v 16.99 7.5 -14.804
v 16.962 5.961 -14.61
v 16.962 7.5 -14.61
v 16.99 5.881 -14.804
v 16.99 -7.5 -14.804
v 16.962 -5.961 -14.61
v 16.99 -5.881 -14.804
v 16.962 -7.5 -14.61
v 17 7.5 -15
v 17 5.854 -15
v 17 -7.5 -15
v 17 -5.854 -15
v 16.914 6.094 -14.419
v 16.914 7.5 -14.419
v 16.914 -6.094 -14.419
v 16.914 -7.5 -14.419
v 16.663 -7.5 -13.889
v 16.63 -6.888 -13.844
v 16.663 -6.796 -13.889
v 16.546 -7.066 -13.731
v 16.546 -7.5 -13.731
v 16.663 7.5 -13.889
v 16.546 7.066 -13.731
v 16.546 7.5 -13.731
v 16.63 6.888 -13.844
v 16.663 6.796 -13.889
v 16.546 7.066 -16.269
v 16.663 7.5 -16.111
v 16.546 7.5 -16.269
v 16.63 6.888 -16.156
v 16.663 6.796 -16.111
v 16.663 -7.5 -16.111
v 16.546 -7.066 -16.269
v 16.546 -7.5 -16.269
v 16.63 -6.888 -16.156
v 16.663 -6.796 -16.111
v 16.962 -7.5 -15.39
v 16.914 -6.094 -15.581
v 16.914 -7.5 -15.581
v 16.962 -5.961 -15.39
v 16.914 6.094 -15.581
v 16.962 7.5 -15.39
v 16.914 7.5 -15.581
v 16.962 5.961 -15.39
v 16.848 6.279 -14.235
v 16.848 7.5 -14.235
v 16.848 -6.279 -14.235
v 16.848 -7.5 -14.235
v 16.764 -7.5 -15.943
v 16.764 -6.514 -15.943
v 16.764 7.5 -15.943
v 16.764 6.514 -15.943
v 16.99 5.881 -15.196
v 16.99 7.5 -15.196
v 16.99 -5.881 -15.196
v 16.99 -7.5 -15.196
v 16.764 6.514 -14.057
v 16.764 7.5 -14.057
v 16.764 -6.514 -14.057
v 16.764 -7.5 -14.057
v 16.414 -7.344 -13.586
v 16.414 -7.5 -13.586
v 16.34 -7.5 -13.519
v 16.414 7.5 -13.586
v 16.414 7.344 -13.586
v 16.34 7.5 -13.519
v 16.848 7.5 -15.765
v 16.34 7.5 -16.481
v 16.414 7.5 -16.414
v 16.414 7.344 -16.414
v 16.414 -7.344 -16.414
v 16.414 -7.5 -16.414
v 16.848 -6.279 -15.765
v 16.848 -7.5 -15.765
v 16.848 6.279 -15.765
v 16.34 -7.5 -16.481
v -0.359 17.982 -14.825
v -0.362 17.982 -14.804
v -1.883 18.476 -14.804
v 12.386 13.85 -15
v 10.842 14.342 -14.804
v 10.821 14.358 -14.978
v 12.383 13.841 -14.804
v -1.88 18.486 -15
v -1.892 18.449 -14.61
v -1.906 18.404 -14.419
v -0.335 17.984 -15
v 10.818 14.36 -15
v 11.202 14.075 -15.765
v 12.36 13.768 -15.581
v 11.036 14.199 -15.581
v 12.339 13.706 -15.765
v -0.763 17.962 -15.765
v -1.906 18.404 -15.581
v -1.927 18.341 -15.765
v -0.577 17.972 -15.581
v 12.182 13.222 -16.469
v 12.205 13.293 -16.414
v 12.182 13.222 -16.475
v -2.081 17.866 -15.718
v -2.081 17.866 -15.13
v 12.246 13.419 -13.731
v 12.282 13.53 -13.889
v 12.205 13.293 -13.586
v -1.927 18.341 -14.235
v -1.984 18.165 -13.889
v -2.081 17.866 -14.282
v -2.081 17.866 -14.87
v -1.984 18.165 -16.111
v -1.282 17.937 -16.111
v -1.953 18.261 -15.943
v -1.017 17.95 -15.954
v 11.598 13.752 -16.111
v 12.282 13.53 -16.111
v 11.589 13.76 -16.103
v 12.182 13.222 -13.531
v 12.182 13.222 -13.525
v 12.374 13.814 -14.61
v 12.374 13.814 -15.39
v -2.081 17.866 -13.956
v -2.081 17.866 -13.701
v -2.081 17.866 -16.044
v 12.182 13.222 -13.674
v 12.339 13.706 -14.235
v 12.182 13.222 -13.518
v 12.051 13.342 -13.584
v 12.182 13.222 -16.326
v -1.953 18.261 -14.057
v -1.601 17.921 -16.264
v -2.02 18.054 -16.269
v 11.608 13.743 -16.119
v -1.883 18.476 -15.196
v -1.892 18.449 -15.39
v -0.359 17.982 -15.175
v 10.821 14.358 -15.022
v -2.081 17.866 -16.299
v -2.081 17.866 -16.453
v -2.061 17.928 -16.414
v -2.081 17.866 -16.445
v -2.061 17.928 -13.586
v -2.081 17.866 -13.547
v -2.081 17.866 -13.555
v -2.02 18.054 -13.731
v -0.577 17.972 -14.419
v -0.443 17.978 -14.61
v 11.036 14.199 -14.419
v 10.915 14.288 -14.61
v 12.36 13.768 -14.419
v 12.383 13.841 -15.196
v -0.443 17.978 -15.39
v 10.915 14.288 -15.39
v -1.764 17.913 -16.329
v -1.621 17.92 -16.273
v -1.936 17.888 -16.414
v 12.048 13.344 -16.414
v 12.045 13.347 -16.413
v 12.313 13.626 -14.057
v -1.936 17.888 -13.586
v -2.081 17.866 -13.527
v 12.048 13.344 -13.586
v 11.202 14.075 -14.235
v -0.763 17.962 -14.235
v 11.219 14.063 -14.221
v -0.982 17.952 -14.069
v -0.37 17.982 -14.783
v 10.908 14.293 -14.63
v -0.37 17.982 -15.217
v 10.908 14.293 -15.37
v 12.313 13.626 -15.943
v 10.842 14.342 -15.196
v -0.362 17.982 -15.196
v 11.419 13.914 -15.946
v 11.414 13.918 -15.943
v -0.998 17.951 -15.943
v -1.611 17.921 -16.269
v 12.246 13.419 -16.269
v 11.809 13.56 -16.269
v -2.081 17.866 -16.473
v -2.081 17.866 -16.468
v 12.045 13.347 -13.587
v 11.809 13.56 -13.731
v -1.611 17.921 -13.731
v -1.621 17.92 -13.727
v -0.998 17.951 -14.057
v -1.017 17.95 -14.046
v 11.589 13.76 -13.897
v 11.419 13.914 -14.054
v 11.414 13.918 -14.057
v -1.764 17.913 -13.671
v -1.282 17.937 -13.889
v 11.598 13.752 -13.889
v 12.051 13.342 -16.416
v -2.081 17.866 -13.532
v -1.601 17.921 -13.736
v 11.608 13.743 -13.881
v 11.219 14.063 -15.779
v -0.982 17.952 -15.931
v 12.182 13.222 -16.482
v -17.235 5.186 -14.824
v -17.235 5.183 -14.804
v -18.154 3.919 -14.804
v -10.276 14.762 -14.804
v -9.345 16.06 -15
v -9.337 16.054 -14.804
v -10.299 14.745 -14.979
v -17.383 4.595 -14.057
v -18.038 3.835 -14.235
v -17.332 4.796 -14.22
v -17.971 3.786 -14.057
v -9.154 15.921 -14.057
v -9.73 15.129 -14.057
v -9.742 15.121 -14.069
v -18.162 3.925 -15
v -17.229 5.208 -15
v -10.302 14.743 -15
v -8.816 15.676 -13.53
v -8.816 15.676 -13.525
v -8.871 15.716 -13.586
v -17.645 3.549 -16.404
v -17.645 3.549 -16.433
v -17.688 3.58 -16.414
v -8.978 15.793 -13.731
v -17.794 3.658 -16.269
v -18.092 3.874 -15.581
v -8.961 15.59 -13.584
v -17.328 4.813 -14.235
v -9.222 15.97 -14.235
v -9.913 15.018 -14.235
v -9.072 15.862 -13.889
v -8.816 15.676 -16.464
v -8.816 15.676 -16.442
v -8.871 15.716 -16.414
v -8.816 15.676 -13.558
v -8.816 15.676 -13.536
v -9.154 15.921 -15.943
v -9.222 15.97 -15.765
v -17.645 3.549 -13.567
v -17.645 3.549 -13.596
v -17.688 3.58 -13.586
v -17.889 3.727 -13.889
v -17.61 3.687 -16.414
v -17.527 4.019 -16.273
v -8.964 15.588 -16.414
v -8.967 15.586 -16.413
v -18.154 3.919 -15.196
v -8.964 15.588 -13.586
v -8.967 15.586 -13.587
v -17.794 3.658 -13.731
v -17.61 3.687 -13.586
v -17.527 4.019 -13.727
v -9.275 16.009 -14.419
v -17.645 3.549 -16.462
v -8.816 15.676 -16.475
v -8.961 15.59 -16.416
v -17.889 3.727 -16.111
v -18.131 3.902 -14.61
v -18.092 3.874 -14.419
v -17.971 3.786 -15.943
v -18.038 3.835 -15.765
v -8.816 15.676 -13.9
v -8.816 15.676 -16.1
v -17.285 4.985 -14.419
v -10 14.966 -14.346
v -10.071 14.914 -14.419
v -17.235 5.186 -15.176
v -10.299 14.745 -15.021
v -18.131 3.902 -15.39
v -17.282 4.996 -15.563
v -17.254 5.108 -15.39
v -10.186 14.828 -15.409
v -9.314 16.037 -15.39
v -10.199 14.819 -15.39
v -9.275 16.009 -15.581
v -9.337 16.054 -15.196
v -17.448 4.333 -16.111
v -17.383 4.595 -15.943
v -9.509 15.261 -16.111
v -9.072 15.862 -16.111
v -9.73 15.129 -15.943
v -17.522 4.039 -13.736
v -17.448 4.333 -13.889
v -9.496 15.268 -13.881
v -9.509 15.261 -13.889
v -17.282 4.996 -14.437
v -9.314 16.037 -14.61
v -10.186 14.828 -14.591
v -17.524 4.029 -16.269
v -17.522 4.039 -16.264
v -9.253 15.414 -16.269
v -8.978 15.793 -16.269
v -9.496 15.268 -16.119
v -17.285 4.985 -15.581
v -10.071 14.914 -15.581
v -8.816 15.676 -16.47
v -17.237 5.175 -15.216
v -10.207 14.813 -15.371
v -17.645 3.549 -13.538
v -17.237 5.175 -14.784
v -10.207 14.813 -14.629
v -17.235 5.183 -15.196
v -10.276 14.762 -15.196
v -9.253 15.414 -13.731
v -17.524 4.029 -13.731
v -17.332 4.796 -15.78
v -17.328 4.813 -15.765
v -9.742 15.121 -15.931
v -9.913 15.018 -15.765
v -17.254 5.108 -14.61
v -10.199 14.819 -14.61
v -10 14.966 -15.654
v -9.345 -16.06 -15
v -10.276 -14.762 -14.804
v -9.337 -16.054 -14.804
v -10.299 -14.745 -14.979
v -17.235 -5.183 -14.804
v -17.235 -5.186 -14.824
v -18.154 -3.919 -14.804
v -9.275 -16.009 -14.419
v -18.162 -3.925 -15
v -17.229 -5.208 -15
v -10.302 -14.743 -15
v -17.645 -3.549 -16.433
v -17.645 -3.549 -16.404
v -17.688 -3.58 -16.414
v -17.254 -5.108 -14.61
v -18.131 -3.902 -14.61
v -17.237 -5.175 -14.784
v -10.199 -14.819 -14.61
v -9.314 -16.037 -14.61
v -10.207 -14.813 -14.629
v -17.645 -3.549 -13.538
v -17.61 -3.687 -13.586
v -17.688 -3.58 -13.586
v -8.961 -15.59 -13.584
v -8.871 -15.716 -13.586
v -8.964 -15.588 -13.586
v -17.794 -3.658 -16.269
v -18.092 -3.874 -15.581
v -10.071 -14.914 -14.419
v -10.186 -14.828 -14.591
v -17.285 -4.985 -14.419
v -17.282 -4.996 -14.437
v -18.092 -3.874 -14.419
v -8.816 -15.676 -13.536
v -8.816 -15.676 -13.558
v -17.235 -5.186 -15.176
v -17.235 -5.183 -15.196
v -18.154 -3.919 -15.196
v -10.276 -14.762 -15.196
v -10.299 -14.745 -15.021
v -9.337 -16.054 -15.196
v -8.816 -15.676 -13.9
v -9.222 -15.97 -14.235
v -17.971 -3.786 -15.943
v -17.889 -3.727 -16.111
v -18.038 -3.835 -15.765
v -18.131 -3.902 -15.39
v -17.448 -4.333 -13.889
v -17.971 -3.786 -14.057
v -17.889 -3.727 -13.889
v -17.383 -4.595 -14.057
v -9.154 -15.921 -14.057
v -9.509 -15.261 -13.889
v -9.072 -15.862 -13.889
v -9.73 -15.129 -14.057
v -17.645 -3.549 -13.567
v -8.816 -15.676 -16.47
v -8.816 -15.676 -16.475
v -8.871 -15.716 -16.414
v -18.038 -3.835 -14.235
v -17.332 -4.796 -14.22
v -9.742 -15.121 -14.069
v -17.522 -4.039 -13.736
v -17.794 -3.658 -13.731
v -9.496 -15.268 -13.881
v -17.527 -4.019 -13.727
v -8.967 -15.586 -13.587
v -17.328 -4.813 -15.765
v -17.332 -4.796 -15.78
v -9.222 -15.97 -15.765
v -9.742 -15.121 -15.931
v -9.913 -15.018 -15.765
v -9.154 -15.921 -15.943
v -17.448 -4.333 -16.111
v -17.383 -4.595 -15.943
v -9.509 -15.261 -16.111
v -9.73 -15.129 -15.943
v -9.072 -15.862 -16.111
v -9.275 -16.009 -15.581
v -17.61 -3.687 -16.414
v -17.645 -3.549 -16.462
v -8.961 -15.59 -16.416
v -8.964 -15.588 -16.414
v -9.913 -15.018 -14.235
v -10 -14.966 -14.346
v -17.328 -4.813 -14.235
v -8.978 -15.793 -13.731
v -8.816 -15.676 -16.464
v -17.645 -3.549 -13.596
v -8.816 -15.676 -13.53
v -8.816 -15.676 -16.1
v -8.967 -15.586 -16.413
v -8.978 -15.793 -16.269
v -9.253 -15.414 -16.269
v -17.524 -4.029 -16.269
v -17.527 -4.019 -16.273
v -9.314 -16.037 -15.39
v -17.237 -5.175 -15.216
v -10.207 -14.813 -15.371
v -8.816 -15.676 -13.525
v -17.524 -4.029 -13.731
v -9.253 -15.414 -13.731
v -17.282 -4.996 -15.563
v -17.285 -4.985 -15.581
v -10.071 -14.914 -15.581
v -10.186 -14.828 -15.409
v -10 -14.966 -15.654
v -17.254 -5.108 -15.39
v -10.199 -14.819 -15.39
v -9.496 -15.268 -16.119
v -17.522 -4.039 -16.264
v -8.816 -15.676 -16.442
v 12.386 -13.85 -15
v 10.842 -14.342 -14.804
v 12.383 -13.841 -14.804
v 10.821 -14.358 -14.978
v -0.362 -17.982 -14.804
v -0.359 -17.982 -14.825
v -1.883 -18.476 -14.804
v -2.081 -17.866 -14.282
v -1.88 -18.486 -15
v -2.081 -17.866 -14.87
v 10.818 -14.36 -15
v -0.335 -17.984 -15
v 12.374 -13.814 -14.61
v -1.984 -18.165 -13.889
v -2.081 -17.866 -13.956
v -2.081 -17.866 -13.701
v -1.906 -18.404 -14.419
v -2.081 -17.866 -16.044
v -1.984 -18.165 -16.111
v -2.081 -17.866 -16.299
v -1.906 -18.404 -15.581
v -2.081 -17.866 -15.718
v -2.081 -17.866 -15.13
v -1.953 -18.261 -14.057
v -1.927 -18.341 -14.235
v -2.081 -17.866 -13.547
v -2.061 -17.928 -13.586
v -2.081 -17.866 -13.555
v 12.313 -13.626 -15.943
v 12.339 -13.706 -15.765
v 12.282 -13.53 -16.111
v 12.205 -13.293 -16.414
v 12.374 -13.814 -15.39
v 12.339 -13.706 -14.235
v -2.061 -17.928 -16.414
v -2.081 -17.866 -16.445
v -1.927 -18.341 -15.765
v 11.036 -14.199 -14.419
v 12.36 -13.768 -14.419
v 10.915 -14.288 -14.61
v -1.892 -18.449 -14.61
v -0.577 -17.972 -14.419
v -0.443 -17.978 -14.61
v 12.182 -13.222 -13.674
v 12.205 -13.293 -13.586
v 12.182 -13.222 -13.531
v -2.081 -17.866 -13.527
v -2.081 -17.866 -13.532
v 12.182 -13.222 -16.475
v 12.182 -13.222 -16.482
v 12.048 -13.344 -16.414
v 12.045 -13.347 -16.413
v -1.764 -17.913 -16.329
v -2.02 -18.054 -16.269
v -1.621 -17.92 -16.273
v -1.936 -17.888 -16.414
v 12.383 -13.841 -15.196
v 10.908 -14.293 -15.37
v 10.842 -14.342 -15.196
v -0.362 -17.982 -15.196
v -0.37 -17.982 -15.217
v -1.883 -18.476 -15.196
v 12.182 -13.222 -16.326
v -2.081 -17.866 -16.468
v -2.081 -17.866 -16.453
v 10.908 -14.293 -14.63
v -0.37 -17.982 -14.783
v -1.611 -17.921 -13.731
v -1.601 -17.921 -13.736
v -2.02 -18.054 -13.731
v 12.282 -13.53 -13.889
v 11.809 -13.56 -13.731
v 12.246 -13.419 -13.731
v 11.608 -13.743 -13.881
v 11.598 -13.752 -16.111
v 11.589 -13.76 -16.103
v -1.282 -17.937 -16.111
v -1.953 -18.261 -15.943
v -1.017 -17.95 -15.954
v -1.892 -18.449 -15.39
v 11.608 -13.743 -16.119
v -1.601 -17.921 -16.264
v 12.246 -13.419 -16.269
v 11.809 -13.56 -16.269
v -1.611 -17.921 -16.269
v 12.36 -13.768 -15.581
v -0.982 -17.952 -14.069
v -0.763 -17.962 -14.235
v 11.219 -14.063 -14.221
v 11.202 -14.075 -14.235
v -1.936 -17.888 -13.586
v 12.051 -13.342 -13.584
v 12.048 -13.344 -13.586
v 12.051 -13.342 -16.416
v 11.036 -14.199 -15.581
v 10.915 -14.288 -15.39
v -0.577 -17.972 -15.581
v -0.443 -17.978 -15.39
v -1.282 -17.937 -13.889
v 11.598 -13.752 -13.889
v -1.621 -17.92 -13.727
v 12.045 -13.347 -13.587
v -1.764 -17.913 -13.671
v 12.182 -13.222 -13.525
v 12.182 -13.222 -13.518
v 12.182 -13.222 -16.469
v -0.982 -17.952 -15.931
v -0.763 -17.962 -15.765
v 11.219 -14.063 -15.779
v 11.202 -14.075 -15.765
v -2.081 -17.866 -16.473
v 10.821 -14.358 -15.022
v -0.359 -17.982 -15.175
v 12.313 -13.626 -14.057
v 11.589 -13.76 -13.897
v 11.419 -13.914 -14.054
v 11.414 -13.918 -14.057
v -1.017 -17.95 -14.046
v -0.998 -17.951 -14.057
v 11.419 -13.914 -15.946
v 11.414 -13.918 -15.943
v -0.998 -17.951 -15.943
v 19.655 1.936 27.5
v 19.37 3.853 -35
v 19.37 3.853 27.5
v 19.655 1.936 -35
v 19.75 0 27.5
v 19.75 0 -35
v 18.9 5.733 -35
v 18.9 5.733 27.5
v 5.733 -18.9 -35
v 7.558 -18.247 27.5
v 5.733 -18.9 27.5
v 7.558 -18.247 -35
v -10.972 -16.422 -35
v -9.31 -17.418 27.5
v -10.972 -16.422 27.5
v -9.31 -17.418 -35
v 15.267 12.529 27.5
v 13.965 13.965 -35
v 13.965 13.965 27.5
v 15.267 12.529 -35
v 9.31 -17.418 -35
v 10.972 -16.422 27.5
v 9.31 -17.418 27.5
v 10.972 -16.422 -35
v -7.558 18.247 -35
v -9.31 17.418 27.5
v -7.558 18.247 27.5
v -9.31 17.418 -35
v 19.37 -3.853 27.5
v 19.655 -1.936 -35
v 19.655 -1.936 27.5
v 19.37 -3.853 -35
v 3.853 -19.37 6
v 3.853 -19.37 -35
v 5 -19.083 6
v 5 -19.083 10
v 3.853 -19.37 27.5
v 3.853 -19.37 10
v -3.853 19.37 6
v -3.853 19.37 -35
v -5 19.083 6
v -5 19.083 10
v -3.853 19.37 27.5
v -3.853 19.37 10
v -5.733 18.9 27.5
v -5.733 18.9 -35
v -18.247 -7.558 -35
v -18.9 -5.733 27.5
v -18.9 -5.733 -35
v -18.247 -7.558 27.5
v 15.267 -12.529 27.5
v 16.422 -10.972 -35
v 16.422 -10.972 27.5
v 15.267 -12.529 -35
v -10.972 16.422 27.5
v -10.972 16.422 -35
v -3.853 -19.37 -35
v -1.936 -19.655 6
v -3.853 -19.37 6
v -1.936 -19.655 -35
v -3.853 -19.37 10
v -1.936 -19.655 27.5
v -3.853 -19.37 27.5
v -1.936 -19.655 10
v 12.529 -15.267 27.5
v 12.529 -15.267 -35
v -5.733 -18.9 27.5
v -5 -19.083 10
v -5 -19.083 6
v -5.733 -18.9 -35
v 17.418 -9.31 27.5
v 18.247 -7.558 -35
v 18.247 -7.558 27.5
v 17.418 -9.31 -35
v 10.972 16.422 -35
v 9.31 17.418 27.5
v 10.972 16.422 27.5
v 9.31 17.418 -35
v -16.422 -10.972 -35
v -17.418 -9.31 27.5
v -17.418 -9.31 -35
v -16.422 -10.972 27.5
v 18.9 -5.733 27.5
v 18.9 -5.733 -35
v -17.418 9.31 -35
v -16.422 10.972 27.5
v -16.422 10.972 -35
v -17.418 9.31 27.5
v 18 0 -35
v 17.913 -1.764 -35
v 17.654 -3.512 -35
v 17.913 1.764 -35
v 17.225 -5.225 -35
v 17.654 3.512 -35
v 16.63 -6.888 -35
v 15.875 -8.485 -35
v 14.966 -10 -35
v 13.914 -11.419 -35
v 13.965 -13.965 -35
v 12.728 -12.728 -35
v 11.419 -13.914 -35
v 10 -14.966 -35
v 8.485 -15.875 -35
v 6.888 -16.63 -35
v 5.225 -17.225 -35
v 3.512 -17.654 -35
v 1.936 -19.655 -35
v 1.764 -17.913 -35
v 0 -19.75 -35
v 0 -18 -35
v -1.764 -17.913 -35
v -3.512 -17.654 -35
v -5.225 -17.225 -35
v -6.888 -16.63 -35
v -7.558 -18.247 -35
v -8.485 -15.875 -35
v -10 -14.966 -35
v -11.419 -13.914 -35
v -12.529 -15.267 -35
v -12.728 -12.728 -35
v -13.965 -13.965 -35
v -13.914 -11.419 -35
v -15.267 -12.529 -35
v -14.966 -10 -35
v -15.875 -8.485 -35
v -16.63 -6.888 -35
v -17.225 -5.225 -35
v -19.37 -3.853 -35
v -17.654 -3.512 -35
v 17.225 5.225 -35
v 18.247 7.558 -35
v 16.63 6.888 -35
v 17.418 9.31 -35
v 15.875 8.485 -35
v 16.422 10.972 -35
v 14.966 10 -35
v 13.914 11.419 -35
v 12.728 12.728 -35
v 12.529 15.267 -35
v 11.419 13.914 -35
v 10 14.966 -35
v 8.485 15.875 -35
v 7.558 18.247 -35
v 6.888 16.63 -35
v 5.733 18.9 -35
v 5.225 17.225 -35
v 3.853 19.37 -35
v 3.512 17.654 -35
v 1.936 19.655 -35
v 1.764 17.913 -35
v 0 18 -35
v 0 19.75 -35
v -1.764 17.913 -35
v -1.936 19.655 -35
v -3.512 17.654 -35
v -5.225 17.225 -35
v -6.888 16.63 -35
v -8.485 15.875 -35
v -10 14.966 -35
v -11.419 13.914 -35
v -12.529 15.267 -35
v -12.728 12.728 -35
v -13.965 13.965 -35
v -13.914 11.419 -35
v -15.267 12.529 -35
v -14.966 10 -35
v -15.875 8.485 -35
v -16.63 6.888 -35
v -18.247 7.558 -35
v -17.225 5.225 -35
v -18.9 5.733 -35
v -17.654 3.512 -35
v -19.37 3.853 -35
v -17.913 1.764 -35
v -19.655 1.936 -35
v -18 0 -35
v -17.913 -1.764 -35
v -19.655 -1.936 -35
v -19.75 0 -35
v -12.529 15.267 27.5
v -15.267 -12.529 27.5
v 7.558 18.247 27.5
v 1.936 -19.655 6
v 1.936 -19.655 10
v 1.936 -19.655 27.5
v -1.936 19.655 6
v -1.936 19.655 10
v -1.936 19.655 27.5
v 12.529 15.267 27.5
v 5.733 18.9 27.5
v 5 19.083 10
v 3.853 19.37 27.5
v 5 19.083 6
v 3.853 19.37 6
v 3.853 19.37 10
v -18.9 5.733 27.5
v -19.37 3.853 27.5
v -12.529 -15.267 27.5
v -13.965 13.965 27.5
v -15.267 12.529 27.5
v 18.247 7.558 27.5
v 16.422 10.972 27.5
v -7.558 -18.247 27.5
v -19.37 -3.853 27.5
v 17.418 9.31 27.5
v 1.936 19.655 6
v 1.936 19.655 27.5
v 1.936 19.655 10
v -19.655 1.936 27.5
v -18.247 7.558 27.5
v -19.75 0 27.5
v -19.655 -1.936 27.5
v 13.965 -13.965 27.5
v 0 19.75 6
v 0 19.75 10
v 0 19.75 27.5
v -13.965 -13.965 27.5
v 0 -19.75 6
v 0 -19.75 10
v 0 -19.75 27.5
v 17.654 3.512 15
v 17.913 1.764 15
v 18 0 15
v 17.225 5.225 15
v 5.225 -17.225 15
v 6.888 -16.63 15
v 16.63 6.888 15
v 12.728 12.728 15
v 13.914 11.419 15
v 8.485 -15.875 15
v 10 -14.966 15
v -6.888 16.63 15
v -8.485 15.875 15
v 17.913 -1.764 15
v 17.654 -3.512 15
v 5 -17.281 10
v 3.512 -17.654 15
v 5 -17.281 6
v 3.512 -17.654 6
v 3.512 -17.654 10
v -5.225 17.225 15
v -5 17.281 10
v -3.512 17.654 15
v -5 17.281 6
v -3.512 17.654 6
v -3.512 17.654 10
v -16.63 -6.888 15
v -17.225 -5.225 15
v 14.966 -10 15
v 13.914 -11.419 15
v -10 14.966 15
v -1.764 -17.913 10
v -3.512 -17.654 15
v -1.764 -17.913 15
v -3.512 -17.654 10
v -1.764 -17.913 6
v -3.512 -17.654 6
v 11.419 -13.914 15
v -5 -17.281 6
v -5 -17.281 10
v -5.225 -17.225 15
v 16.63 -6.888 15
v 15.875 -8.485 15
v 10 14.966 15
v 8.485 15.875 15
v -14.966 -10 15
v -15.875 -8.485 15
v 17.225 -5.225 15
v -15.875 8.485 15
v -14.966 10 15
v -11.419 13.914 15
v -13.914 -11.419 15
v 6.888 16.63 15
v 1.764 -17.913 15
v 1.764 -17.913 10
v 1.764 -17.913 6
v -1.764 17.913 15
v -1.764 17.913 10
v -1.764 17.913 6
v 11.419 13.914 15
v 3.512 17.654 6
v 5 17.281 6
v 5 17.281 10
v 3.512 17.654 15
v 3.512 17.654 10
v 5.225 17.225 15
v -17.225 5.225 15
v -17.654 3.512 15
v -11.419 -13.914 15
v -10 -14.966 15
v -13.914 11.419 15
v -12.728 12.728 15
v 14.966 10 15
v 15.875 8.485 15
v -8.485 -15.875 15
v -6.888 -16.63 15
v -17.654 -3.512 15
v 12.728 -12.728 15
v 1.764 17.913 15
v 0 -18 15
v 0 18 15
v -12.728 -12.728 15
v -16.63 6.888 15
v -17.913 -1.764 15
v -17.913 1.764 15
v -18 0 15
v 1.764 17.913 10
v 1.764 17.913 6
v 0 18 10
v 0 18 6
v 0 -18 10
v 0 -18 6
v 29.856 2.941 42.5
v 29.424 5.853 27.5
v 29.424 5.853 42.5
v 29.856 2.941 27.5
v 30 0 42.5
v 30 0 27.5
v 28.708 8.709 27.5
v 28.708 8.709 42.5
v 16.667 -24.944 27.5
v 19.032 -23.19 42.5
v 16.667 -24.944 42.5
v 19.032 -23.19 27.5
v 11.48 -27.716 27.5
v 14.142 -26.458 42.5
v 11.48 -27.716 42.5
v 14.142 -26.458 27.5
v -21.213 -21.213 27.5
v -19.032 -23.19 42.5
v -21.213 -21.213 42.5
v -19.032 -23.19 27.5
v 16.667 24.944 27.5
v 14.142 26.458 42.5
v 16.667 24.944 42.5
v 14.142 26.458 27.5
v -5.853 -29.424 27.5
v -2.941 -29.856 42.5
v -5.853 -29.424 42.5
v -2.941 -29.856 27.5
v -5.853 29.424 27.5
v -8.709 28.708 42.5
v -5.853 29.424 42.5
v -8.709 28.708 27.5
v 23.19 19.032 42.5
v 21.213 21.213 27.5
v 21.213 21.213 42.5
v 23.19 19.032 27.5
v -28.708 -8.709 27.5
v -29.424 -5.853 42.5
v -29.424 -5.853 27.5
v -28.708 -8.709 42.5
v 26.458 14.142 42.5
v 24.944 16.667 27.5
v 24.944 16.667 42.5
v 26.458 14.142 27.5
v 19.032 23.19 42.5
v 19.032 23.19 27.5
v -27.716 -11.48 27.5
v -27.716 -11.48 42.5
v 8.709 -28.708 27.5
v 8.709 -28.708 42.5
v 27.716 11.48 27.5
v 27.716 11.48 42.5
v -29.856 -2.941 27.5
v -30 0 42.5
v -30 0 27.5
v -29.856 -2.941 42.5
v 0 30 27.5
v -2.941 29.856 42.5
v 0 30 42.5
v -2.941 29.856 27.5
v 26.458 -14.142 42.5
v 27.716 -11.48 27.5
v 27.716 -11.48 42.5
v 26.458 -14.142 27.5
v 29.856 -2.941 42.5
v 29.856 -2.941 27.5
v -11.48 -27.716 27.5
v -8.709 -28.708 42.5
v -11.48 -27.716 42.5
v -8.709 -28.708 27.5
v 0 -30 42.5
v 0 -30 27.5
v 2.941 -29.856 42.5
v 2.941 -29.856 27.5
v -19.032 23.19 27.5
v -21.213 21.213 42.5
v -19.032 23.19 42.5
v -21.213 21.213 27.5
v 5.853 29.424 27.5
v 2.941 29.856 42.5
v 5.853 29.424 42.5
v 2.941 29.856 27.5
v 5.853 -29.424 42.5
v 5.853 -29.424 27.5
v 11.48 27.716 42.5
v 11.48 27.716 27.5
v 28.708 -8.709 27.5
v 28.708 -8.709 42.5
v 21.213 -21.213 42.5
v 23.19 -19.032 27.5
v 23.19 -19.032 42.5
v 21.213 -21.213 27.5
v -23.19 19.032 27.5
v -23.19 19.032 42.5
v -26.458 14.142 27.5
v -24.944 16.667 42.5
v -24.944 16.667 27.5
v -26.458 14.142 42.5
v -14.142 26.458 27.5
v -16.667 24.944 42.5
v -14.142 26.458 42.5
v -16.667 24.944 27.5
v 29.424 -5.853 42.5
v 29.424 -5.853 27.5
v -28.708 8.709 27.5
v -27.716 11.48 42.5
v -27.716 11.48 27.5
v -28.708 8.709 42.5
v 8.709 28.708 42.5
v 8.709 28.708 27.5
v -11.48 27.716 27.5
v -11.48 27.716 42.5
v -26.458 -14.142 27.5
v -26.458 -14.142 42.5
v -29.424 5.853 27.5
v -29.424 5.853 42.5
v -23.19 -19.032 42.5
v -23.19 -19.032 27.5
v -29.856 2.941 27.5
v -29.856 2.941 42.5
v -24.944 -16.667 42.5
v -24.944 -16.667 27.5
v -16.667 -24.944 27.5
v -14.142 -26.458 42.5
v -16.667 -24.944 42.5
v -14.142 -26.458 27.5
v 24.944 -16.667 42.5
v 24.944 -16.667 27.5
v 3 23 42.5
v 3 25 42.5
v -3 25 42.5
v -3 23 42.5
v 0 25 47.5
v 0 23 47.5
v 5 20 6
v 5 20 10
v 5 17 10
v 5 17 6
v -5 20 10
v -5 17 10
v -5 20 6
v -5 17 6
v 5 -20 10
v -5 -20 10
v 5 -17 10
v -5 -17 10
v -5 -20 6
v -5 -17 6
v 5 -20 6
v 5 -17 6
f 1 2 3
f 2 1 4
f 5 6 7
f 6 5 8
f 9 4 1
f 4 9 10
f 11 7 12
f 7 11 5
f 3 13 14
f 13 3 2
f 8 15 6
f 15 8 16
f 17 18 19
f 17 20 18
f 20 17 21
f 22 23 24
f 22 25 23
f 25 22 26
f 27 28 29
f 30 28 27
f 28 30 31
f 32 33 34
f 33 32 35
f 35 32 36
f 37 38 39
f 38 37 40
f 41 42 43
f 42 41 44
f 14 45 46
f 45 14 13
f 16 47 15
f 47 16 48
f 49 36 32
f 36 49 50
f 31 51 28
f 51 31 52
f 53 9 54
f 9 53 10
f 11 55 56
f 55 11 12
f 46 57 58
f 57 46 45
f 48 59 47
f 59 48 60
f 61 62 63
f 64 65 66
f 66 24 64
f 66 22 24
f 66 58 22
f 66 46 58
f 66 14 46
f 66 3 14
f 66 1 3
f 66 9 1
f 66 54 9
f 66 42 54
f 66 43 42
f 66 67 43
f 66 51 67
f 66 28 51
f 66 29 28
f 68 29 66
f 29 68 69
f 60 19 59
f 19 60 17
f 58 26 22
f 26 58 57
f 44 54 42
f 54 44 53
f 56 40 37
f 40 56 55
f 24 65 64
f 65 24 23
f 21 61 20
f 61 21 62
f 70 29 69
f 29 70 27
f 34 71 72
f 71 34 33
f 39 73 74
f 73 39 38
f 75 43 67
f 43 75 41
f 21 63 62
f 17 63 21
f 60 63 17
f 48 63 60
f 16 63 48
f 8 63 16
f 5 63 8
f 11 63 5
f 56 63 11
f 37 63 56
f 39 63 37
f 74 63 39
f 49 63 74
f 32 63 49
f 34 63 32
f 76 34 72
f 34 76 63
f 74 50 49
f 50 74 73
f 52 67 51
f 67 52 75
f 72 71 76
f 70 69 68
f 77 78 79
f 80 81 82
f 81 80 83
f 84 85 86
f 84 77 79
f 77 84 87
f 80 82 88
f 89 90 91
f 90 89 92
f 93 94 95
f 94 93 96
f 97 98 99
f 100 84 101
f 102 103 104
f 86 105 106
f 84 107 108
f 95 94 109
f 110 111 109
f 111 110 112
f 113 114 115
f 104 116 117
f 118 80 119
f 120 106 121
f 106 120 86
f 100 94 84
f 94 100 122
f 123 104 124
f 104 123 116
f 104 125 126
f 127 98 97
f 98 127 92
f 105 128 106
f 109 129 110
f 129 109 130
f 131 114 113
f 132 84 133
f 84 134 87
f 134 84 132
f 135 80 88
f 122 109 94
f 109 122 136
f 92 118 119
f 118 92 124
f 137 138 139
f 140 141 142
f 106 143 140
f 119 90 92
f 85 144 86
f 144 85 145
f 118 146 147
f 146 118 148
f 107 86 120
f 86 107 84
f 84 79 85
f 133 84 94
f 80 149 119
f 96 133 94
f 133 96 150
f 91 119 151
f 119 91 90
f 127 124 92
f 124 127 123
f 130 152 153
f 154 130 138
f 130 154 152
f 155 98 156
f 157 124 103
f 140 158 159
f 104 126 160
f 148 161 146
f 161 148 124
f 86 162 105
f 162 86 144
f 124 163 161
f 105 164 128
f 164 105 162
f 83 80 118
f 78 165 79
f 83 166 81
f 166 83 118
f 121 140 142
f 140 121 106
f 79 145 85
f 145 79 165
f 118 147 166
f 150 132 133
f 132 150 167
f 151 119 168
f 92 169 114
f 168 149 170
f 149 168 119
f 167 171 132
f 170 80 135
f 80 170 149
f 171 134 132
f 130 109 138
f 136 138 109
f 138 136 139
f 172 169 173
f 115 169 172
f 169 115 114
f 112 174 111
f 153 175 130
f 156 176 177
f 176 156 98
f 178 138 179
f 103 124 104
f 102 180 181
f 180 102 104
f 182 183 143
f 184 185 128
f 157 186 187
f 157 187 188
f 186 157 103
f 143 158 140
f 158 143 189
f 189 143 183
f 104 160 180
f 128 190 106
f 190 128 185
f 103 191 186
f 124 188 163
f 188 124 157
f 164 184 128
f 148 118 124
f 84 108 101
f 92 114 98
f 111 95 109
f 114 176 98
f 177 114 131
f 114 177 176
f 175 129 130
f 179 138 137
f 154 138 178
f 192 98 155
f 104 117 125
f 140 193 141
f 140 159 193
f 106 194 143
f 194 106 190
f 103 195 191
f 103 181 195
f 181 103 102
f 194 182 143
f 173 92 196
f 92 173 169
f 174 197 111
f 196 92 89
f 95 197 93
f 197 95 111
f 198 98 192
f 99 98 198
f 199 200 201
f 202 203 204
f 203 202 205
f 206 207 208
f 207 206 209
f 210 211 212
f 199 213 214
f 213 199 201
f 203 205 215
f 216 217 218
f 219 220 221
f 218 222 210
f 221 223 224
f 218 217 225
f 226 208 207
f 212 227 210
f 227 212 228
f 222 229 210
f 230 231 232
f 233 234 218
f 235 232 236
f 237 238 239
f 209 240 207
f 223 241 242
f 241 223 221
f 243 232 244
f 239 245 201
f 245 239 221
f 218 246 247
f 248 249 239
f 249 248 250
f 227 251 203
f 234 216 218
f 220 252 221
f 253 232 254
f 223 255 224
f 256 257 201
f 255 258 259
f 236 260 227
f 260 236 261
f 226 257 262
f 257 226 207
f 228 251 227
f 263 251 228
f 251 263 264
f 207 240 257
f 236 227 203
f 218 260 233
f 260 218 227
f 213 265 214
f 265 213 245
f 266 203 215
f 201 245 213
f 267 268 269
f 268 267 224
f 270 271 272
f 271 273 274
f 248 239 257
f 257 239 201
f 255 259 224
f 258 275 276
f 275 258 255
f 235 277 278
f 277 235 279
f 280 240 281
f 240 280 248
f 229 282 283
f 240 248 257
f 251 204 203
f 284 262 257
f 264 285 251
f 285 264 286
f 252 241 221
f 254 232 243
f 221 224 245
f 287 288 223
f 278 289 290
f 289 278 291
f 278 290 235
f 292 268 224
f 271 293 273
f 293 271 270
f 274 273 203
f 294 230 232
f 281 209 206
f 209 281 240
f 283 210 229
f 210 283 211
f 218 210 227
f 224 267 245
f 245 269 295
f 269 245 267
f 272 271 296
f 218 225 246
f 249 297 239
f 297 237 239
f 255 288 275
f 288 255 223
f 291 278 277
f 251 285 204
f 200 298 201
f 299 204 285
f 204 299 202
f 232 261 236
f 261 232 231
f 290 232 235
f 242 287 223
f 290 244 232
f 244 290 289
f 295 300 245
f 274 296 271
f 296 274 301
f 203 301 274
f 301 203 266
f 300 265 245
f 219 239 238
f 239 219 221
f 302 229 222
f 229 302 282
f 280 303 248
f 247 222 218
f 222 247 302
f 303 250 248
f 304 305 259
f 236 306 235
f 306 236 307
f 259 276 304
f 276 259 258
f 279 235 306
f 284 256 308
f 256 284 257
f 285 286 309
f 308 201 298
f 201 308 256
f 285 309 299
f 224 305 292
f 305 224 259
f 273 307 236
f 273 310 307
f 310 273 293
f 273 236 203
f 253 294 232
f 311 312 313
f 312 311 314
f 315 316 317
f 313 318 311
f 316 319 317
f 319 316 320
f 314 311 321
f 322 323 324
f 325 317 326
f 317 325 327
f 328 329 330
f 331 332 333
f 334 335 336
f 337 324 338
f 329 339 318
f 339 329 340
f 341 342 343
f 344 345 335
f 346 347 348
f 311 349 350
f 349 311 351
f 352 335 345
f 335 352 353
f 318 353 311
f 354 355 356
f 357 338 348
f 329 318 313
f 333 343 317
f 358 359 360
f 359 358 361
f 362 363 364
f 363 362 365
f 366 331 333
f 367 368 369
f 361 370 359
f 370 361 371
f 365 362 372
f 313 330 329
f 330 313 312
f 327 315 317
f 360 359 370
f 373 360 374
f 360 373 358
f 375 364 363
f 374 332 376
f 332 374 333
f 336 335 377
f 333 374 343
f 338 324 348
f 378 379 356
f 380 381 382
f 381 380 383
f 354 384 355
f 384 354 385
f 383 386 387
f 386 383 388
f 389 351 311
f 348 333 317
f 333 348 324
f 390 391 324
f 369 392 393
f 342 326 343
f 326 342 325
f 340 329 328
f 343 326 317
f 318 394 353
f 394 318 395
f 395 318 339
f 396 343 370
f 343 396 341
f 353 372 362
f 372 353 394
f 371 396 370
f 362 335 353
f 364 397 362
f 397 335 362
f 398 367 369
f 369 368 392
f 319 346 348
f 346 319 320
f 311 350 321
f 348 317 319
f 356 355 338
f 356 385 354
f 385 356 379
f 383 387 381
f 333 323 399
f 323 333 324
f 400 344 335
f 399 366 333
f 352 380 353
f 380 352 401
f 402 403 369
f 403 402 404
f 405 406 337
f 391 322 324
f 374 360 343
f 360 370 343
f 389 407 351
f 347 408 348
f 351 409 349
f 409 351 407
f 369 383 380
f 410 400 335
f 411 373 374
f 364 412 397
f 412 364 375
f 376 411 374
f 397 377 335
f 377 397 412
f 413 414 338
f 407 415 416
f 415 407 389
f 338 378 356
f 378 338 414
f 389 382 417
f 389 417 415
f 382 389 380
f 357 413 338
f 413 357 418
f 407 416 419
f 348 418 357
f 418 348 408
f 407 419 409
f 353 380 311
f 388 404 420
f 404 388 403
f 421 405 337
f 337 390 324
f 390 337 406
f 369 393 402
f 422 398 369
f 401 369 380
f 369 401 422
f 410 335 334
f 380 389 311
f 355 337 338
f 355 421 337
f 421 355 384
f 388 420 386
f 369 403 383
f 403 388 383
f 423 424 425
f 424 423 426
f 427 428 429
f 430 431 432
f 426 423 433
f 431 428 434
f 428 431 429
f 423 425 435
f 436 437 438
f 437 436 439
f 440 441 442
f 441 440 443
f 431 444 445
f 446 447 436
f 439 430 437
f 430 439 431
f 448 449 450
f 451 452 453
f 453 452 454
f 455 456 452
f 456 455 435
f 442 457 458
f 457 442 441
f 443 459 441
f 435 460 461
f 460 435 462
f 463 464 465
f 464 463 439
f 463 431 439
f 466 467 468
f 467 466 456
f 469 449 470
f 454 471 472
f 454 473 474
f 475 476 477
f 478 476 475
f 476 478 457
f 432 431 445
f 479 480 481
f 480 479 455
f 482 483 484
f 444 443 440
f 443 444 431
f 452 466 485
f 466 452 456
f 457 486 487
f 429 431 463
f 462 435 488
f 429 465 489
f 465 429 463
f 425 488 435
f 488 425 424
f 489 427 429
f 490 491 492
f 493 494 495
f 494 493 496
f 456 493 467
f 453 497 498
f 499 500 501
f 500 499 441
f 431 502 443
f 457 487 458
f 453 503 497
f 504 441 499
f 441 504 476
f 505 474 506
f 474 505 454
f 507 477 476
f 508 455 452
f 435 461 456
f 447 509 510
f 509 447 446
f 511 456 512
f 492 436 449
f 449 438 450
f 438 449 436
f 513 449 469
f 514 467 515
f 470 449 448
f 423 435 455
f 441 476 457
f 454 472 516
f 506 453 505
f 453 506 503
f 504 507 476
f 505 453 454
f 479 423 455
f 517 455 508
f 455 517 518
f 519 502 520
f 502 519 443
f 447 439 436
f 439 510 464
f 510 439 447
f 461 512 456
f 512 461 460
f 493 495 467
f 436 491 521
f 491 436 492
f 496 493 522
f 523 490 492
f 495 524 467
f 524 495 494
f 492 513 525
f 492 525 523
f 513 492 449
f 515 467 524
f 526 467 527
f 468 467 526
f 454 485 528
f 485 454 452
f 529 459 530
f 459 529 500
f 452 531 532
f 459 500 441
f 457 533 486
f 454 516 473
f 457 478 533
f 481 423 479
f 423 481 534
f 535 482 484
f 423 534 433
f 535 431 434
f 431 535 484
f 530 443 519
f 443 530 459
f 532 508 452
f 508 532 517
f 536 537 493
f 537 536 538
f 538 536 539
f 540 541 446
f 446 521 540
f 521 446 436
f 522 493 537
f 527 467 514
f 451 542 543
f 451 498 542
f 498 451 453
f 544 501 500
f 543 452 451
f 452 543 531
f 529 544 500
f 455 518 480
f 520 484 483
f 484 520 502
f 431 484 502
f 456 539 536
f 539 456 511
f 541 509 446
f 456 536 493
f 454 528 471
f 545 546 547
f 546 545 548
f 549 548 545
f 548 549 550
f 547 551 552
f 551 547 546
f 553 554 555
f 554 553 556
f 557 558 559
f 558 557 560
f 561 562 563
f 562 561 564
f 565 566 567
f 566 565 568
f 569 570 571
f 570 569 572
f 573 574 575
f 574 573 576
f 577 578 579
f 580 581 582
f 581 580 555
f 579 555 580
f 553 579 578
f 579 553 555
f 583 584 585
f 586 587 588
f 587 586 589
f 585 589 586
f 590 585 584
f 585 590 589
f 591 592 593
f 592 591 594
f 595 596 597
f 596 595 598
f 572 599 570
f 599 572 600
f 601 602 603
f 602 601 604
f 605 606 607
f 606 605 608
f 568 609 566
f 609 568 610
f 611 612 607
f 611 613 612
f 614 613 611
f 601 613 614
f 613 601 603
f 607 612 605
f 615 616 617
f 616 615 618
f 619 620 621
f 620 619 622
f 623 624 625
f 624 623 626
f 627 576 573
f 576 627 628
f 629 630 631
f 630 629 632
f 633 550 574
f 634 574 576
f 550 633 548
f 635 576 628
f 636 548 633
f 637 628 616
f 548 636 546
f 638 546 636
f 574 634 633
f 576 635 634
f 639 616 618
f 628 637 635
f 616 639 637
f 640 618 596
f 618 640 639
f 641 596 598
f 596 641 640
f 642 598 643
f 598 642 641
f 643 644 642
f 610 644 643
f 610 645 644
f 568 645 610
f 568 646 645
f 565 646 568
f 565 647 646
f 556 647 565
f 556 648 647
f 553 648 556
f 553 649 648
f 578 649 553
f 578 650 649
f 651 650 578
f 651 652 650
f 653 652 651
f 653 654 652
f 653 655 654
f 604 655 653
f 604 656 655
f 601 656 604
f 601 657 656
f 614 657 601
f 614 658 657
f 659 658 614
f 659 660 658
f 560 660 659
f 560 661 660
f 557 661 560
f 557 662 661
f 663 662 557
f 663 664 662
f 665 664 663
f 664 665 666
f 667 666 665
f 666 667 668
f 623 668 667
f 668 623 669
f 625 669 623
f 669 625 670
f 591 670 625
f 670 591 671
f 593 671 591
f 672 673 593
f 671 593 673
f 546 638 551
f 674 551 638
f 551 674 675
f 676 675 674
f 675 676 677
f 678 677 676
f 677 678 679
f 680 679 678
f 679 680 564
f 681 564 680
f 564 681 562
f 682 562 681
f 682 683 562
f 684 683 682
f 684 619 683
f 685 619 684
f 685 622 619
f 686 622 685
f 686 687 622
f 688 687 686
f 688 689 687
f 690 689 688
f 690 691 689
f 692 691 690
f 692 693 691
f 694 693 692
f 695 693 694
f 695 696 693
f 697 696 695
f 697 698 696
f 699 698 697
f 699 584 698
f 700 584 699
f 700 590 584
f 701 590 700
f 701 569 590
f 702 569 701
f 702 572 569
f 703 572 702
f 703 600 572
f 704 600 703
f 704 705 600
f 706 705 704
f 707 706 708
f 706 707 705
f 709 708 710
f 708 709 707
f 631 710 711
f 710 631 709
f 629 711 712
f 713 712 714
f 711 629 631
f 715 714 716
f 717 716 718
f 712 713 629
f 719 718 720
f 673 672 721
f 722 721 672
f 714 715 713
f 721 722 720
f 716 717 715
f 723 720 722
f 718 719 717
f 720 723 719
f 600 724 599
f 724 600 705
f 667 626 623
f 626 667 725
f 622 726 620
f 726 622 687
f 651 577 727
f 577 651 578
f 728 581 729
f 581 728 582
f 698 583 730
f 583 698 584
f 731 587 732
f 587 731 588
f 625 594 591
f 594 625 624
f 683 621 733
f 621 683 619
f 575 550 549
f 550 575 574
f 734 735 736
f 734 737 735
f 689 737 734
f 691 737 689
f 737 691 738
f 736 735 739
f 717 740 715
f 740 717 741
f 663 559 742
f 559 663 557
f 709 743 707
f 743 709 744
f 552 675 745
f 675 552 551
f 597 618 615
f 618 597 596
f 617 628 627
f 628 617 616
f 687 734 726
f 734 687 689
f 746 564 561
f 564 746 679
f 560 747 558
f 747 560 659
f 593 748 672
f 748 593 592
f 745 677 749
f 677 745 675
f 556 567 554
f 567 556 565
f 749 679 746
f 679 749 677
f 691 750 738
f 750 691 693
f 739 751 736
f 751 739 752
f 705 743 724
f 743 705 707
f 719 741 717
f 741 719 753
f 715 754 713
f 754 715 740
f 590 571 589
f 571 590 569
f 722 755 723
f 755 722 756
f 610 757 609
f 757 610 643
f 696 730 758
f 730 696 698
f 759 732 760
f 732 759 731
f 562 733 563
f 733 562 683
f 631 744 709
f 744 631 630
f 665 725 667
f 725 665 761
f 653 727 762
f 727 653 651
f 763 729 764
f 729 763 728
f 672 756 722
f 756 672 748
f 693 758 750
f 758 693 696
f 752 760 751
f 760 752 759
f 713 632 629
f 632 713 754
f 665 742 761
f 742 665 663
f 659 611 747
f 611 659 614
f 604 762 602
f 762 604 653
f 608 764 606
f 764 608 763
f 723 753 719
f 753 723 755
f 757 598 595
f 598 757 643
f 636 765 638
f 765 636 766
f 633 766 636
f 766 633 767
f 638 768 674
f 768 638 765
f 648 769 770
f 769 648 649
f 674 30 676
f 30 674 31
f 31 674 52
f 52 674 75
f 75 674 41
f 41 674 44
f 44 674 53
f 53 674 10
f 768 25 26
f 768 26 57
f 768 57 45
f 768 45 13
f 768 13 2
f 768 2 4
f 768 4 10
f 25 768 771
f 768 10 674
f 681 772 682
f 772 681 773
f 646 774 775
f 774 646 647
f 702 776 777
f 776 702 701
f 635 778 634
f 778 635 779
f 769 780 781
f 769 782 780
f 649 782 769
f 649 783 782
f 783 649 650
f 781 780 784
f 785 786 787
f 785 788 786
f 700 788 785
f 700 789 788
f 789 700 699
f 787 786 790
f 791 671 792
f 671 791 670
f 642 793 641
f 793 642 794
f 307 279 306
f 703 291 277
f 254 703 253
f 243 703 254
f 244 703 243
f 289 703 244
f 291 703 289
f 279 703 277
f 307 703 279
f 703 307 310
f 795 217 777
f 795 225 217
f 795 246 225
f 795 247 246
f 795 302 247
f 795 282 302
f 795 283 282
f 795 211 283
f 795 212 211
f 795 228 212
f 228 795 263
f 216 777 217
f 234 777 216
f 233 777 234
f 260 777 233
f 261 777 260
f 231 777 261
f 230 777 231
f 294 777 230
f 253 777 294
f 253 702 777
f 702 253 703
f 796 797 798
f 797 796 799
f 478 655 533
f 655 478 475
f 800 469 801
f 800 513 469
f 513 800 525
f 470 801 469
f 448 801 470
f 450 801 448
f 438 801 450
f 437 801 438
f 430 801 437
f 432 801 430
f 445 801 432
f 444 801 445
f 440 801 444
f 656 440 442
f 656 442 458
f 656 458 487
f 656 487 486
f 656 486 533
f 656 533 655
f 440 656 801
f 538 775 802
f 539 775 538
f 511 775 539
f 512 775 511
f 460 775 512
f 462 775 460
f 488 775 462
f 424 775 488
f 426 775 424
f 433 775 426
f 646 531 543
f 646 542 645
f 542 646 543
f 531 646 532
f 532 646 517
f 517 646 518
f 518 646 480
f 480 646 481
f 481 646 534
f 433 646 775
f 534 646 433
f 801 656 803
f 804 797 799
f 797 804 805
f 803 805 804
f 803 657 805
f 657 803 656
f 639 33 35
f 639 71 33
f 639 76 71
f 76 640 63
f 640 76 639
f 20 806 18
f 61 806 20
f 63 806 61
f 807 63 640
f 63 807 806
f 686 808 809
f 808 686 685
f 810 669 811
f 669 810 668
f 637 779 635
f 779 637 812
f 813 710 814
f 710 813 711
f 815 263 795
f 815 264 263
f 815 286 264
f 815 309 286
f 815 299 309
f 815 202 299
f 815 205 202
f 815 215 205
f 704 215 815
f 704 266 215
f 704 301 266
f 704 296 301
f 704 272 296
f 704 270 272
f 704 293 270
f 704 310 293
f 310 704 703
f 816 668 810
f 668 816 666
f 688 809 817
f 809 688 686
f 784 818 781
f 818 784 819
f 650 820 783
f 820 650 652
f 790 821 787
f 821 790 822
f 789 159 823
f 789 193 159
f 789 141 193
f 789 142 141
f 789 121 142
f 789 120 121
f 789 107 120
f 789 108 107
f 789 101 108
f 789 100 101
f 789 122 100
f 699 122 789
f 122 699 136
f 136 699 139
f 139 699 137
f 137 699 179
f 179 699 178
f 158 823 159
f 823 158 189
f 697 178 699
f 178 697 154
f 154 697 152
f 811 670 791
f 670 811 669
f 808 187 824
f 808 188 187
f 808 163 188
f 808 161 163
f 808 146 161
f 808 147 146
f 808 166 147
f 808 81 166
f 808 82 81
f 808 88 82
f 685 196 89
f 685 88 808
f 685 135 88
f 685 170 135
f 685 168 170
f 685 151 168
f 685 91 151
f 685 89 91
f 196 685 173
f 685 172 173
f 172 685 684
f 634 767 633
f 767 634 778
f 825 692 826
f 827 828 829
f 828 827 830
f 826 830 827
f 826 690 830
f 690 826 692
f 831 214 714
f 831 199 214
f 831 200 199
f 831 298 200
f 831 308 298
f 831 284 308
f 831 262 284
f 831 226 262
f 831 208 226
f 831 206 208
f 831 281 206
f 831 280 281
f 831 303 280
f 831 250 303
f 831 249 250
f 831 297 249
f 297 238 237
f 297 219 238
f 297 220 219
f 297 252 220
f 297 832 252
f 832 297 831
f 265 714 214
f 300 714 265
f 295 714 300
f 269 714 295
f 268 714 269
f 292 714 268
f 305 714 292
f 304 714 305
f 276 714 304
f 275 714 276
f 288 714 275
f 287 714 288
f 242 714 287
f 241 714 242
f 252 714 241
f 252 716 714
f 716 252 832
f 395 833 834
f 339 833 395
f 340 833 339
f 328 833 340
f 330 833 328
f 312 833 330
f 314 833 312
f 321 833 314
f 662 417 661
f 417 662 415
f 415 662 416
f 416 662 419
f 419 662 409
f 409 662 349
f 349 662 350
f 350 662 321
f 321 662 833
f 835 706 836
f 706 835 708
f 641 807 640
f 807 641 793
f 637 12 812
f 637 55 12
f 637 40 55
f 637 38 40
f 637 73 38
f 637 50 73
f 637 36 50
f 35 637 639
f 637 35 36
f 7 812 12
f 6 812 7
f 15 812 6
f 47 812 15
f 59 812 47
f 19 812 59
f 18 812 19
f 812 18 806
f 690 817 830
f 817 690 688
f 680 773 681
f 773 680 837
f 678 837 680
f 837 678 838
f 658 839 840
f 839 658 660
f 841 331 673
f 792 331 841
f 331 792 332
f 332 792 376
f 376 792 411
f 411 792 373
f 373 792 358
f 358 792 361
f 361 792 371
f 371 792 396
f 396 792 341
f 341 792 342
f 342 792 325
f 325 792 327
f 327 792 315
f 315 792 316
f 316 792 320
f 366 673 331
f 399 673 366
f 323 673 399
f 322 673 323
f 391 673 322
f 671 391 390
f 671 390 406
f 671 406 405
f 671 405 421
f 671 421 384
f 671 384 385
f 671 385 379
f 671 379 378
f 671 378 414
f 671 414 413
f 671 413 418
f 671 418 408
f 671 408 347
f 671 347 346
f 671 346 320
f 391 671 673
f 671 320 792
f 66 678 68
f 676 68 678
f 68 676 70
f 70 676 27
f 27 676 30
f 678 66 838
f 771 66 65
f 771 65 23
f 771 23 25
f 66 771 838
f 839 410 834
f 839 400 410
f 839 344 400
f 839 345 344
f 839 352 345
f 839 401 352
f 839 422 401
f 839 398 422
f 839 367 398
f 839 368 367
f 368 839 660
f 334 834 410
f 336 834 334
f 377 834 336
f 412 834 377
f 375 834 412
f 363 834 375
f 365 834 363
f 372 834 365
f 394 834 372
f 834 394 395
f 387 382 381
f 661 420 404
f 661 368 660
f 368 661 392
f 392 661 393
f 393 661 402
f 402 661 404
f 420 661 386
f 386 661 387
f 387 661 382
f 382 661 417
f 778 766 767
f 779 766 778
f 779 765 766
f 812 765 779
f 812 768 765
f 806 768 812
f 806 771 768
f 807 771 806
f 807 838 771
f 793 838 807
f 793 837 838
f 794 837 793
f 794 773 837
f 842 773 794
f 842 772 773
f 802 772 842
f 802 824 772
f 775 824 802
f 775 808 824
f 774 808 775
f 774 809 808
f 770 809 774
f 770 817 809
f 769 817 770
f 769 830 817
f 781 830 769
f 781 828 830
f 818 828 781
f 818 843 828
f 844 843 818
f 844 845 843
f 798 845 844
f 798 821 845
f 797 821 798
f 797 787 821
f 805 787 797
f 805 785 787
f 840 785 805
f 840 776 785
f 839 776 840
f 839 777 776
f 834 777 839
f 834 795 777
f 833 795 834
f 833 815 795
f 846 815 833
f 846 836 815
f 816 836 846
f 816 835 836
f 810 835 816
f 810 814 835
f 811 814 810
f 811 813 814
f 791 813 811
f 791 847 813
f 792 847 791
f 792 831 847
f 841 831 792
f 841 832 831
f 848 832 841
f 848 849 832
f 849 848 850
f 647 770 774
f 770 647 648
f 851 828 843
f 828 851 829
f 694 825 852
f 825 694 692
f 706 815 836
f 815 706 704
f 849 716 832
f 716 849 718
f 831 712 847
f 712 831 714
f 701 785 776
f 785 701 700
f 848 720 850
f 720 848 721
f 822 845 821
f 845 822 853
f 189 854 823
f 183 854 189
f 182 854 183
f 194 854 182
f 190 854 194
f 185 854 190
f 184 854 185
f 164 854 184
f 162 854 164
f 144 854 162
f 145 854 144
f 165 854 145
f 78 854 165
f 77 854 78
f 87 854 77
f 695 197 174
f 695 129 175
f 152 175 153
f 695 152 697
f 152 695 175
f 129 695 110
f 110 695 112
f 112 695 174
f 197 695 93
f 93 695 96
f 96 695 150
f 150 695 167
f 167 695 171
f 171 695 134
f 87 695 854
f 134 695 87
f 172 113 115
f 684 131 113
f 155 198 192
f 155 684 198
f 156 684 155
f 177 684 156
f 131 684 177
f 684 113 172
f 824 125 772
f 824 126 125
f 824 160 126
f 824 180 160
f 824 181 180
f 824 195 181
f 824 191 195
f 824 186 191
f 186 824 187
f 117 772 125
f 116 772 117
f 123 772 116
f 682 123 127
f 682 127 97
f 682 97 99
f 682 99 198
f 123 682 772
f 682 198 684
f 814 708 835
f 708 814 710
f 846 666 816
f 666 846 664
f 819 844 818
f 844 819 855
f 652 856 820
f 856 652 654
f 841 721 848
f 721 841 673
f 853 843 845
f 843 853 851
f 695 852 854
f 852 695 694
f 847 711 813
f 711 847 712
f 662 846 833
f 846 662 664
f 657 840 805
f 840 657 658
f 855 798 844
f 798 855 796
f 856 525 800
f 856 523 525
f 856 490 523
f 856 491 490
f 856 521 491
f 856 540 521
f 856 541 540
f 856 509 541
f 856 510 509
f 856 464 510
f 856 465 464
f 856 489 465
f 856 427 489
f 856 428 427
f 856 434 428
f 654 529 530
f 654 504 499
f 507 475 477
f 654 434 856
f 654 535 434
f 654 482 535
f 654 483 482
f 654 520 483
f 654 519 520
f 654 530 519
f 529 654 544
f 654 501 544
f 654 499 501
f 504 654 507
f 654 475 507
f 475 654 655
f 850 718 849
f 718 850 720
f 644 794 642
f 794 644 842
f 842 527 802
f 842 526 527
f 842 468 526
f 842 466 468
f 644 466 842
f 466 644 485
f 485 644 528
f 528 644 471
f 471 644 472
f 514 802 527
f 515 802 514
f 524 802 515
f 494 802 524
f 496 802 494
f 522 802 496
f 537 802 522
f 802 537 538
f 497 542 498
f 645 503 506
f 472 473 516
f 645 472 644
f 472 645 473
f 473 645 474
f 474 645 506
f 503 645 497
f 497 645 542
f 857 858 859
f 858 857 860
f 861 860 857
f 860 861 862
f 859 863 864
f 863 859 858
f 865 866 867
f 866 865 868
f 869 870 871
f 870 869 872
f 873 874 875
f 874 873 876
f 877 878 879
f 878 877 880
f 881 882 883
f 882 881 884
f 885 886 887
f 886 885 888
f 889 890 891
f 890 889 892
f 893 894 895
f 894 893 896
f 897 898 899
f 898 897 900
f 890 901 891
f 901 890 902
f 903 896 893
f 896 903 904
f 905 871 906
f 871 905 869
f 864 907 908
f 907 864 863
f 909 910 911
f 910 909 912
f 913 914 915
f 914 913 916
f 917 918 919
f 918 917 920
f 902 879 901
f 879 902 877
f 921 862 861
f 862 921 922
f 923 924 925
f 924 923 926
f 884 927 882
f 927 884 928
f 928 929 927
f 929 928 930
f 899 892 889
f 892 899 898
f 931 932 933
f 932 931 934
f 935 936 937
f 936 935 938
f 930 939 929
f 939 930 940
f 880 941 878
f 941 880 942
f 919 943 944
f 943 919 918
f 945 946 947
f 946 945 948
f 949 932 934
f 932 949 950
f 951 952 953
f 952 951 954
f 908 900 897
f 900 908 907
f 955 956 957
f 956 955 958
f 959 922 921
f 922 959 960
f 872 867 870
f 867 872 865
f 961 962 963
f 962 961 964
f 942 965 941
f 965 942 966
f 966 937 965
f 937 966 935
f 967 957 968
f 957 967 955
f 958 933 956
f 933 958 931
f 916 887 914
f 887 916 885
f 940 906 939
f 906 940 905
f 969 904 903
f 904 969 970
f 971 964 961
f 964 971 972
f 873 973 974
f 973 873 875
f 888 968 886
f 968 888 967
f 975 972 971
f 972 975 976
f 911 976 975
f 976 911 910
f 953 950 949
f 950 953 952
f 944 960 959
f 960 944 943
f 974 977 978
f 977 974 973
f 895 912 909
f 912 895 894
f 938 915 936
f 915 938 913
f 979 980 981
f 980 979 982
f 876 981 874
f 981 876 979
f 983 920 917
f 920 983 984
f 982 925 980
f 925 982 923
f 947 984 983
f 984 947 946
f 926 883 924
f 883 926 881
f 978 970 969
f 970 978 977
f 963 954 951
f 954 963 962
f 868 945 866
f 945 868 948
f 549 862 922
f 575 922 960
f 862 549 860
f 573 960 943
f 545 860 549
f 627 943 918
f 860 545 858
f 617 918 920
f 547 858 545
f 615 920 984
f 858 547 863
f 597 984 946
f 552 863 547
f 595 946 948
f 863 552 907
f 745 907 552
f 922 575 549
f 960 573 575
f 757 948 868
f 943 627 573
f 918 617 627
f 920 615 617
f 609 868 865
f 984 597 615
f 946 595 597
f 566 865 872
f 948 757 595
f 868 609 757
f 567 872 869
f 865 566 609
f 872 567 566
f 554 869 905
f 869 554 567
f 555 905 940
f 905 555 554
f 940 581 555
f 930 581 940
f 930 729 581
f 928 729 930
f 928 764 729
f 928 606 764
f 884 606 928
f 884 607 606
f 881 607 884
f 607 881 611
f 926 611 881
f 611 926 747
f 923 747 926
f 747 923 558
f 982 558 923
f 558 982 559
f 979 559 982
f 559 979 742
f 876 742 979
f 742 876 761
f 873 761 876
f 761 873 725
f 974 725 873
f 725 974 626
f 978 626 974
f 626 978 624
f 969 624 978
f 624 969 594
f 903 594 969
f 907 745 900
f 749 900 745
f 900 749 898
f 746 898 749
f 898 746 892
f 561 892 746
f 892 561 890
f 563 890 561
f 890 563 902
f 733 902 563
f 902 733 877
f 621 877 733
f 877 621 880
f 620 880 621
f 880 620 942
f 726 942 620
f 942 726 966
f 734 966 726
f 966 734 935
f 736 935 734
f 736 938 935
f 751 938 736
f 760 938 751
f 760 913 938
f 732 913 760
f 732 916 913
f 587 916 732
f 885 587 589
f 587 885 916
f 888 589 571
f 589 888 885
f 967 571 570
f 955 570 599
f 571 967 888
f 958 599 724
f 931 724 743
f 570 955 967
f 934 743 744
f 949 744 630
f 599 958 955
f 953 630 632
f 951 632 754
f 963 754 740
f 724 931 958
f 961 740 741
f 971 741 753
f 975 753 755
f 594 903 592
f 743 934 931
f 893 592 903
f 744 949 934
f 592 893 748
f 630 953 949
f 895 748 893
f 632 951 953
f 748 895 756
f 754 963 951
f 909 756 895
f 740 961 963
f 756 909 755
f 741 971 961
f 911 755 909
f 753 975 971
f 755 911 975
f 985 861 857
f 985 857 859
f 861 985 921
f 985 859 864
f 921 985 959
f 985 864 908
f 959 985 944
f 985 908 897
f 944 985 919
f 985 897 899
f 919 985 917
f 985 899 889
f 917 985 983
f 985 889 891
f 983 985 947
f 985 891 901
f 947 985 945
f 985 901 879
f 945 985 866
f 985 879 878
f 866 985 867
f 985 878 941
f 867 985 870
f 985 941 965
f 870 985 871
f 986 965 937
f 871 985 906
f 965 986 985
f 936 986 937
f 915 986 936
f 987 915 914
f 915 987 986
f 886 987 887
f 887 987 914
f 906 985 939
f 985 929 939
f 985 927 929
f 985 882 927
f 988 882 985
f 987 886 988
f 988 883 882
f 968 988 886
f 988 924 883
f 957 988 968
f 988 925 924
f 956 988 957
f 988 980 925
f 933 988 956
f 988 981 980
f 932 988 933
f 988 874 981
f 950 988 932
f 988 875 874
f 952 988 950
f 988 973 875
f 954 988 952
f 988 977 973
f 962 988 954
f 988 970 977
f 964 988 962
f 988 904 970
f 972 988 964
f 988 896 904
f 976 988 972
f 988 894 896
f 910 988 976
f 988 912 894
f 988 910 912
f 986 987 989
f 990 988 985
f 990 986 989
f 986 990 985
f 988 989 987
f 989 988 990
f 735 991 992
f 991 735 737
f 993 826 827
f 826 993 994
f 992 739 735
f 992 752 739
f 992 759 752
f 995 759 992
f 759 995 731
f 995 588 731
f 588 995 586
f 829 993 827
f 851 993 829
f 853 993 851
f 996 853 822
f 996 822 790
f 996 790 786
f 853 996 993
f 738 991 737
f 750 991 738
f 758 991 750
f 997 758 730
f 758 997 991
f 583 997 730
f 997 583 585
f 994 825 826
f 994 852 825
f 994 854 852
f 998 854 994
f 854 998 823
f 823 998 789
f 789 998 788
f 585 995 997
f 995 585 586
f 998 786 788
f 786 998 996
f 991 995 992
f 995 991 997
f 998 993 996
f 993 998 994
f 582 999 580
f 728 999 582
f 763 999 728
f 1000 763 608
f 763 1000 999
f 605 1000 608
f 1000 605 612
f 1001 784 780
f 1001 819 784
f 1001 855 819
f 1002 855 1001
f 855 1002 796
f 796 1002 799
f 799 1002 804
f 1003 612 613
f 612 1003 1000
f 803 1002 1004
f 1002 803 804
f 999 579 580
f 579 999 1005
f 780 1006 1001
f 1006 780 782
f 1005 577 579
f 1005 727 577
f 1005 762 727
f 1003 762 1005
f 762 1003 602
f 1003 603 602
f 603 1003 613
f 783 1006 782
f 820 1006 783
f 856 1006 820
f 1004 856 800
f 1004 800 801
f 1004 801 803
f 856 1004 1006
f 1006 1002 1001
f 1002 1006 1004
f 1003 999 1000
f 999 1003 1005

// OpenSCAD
// ShopVac Rat Trap - Bait Station
//
// Description:
// Bait station with secure screw-in locking mechanism.
// =========================================

// ========== CORE PARAMETERS ==========
$fn = 64;

// [Dimensions - Must match bait_port in trap_body_main.scad]
bait_port_diameter = 40;
bait_port_length = 20;

// [Bait Compartment]
bait_compartment_diameter = bait_port_diameter - 4;
bait_compartment_depth = 50;

// [Handle]
handle_diameter = bait_port_diameter + 20;
handle_height = 15;

// [Locking Lugs]
lug_width = 10;
lug_height = 4;
lug_depth = 3;

// ========== MODULES ==========

module bait_station() {
    union() {
        difference() {
            // Main body
            cylinder(d=bait_port_diameter - 0.5, h=bait_port_length + bait_compartment_depth, center=true);

            // Bait compartment
            translate([0,0, -bait_port_length/2 - 1]) {
                cylinder(d=bait_compartment_diameter, h=bait_compartment_depth+2, center=true);
            }

            // Scent holes
            for (a = [0, 72, 144, 216, 288]) {
                rotate([0, 0, a]) {
                    translate([bait_compartment_diameter / 2 - 3, 0, -15]) {
                        rotate([90, 0, 0]) {
                            cylinder(h = 15, d = 4, center=true);
                        }
                    }
                }
            }
        }

        // Handle
        translate([0, 0, (bait_port_length + bait_compartment_depth)/2]) {
            cylinder(d=handle_diameter, h=handle_height, center=true);
            // Add an arrow indicator for locking direction
            translate([0, handle_diameter/2 - 5, handle_height/2]) {
                rotate([90,0,0]) {
                    linear_extrude(height=2) {
                        polygon(points=[[-3,0],[3,0],[0,5]]);
                    }
                }
            }
        }

        // Locking lugs
        for (r = [0, 180]) {
            rotate([0,0,r]) {
                translate([0, bait_port_diameter/2 - lug_depth/2, bait_port_length/2 - lug_height/2]) {
                    cube([lug_width, lug_depth, lug_height], center=true);
                }
            }
        }
    }
}

// ========== ASSEMBLY CALL ==========
bait_station();
